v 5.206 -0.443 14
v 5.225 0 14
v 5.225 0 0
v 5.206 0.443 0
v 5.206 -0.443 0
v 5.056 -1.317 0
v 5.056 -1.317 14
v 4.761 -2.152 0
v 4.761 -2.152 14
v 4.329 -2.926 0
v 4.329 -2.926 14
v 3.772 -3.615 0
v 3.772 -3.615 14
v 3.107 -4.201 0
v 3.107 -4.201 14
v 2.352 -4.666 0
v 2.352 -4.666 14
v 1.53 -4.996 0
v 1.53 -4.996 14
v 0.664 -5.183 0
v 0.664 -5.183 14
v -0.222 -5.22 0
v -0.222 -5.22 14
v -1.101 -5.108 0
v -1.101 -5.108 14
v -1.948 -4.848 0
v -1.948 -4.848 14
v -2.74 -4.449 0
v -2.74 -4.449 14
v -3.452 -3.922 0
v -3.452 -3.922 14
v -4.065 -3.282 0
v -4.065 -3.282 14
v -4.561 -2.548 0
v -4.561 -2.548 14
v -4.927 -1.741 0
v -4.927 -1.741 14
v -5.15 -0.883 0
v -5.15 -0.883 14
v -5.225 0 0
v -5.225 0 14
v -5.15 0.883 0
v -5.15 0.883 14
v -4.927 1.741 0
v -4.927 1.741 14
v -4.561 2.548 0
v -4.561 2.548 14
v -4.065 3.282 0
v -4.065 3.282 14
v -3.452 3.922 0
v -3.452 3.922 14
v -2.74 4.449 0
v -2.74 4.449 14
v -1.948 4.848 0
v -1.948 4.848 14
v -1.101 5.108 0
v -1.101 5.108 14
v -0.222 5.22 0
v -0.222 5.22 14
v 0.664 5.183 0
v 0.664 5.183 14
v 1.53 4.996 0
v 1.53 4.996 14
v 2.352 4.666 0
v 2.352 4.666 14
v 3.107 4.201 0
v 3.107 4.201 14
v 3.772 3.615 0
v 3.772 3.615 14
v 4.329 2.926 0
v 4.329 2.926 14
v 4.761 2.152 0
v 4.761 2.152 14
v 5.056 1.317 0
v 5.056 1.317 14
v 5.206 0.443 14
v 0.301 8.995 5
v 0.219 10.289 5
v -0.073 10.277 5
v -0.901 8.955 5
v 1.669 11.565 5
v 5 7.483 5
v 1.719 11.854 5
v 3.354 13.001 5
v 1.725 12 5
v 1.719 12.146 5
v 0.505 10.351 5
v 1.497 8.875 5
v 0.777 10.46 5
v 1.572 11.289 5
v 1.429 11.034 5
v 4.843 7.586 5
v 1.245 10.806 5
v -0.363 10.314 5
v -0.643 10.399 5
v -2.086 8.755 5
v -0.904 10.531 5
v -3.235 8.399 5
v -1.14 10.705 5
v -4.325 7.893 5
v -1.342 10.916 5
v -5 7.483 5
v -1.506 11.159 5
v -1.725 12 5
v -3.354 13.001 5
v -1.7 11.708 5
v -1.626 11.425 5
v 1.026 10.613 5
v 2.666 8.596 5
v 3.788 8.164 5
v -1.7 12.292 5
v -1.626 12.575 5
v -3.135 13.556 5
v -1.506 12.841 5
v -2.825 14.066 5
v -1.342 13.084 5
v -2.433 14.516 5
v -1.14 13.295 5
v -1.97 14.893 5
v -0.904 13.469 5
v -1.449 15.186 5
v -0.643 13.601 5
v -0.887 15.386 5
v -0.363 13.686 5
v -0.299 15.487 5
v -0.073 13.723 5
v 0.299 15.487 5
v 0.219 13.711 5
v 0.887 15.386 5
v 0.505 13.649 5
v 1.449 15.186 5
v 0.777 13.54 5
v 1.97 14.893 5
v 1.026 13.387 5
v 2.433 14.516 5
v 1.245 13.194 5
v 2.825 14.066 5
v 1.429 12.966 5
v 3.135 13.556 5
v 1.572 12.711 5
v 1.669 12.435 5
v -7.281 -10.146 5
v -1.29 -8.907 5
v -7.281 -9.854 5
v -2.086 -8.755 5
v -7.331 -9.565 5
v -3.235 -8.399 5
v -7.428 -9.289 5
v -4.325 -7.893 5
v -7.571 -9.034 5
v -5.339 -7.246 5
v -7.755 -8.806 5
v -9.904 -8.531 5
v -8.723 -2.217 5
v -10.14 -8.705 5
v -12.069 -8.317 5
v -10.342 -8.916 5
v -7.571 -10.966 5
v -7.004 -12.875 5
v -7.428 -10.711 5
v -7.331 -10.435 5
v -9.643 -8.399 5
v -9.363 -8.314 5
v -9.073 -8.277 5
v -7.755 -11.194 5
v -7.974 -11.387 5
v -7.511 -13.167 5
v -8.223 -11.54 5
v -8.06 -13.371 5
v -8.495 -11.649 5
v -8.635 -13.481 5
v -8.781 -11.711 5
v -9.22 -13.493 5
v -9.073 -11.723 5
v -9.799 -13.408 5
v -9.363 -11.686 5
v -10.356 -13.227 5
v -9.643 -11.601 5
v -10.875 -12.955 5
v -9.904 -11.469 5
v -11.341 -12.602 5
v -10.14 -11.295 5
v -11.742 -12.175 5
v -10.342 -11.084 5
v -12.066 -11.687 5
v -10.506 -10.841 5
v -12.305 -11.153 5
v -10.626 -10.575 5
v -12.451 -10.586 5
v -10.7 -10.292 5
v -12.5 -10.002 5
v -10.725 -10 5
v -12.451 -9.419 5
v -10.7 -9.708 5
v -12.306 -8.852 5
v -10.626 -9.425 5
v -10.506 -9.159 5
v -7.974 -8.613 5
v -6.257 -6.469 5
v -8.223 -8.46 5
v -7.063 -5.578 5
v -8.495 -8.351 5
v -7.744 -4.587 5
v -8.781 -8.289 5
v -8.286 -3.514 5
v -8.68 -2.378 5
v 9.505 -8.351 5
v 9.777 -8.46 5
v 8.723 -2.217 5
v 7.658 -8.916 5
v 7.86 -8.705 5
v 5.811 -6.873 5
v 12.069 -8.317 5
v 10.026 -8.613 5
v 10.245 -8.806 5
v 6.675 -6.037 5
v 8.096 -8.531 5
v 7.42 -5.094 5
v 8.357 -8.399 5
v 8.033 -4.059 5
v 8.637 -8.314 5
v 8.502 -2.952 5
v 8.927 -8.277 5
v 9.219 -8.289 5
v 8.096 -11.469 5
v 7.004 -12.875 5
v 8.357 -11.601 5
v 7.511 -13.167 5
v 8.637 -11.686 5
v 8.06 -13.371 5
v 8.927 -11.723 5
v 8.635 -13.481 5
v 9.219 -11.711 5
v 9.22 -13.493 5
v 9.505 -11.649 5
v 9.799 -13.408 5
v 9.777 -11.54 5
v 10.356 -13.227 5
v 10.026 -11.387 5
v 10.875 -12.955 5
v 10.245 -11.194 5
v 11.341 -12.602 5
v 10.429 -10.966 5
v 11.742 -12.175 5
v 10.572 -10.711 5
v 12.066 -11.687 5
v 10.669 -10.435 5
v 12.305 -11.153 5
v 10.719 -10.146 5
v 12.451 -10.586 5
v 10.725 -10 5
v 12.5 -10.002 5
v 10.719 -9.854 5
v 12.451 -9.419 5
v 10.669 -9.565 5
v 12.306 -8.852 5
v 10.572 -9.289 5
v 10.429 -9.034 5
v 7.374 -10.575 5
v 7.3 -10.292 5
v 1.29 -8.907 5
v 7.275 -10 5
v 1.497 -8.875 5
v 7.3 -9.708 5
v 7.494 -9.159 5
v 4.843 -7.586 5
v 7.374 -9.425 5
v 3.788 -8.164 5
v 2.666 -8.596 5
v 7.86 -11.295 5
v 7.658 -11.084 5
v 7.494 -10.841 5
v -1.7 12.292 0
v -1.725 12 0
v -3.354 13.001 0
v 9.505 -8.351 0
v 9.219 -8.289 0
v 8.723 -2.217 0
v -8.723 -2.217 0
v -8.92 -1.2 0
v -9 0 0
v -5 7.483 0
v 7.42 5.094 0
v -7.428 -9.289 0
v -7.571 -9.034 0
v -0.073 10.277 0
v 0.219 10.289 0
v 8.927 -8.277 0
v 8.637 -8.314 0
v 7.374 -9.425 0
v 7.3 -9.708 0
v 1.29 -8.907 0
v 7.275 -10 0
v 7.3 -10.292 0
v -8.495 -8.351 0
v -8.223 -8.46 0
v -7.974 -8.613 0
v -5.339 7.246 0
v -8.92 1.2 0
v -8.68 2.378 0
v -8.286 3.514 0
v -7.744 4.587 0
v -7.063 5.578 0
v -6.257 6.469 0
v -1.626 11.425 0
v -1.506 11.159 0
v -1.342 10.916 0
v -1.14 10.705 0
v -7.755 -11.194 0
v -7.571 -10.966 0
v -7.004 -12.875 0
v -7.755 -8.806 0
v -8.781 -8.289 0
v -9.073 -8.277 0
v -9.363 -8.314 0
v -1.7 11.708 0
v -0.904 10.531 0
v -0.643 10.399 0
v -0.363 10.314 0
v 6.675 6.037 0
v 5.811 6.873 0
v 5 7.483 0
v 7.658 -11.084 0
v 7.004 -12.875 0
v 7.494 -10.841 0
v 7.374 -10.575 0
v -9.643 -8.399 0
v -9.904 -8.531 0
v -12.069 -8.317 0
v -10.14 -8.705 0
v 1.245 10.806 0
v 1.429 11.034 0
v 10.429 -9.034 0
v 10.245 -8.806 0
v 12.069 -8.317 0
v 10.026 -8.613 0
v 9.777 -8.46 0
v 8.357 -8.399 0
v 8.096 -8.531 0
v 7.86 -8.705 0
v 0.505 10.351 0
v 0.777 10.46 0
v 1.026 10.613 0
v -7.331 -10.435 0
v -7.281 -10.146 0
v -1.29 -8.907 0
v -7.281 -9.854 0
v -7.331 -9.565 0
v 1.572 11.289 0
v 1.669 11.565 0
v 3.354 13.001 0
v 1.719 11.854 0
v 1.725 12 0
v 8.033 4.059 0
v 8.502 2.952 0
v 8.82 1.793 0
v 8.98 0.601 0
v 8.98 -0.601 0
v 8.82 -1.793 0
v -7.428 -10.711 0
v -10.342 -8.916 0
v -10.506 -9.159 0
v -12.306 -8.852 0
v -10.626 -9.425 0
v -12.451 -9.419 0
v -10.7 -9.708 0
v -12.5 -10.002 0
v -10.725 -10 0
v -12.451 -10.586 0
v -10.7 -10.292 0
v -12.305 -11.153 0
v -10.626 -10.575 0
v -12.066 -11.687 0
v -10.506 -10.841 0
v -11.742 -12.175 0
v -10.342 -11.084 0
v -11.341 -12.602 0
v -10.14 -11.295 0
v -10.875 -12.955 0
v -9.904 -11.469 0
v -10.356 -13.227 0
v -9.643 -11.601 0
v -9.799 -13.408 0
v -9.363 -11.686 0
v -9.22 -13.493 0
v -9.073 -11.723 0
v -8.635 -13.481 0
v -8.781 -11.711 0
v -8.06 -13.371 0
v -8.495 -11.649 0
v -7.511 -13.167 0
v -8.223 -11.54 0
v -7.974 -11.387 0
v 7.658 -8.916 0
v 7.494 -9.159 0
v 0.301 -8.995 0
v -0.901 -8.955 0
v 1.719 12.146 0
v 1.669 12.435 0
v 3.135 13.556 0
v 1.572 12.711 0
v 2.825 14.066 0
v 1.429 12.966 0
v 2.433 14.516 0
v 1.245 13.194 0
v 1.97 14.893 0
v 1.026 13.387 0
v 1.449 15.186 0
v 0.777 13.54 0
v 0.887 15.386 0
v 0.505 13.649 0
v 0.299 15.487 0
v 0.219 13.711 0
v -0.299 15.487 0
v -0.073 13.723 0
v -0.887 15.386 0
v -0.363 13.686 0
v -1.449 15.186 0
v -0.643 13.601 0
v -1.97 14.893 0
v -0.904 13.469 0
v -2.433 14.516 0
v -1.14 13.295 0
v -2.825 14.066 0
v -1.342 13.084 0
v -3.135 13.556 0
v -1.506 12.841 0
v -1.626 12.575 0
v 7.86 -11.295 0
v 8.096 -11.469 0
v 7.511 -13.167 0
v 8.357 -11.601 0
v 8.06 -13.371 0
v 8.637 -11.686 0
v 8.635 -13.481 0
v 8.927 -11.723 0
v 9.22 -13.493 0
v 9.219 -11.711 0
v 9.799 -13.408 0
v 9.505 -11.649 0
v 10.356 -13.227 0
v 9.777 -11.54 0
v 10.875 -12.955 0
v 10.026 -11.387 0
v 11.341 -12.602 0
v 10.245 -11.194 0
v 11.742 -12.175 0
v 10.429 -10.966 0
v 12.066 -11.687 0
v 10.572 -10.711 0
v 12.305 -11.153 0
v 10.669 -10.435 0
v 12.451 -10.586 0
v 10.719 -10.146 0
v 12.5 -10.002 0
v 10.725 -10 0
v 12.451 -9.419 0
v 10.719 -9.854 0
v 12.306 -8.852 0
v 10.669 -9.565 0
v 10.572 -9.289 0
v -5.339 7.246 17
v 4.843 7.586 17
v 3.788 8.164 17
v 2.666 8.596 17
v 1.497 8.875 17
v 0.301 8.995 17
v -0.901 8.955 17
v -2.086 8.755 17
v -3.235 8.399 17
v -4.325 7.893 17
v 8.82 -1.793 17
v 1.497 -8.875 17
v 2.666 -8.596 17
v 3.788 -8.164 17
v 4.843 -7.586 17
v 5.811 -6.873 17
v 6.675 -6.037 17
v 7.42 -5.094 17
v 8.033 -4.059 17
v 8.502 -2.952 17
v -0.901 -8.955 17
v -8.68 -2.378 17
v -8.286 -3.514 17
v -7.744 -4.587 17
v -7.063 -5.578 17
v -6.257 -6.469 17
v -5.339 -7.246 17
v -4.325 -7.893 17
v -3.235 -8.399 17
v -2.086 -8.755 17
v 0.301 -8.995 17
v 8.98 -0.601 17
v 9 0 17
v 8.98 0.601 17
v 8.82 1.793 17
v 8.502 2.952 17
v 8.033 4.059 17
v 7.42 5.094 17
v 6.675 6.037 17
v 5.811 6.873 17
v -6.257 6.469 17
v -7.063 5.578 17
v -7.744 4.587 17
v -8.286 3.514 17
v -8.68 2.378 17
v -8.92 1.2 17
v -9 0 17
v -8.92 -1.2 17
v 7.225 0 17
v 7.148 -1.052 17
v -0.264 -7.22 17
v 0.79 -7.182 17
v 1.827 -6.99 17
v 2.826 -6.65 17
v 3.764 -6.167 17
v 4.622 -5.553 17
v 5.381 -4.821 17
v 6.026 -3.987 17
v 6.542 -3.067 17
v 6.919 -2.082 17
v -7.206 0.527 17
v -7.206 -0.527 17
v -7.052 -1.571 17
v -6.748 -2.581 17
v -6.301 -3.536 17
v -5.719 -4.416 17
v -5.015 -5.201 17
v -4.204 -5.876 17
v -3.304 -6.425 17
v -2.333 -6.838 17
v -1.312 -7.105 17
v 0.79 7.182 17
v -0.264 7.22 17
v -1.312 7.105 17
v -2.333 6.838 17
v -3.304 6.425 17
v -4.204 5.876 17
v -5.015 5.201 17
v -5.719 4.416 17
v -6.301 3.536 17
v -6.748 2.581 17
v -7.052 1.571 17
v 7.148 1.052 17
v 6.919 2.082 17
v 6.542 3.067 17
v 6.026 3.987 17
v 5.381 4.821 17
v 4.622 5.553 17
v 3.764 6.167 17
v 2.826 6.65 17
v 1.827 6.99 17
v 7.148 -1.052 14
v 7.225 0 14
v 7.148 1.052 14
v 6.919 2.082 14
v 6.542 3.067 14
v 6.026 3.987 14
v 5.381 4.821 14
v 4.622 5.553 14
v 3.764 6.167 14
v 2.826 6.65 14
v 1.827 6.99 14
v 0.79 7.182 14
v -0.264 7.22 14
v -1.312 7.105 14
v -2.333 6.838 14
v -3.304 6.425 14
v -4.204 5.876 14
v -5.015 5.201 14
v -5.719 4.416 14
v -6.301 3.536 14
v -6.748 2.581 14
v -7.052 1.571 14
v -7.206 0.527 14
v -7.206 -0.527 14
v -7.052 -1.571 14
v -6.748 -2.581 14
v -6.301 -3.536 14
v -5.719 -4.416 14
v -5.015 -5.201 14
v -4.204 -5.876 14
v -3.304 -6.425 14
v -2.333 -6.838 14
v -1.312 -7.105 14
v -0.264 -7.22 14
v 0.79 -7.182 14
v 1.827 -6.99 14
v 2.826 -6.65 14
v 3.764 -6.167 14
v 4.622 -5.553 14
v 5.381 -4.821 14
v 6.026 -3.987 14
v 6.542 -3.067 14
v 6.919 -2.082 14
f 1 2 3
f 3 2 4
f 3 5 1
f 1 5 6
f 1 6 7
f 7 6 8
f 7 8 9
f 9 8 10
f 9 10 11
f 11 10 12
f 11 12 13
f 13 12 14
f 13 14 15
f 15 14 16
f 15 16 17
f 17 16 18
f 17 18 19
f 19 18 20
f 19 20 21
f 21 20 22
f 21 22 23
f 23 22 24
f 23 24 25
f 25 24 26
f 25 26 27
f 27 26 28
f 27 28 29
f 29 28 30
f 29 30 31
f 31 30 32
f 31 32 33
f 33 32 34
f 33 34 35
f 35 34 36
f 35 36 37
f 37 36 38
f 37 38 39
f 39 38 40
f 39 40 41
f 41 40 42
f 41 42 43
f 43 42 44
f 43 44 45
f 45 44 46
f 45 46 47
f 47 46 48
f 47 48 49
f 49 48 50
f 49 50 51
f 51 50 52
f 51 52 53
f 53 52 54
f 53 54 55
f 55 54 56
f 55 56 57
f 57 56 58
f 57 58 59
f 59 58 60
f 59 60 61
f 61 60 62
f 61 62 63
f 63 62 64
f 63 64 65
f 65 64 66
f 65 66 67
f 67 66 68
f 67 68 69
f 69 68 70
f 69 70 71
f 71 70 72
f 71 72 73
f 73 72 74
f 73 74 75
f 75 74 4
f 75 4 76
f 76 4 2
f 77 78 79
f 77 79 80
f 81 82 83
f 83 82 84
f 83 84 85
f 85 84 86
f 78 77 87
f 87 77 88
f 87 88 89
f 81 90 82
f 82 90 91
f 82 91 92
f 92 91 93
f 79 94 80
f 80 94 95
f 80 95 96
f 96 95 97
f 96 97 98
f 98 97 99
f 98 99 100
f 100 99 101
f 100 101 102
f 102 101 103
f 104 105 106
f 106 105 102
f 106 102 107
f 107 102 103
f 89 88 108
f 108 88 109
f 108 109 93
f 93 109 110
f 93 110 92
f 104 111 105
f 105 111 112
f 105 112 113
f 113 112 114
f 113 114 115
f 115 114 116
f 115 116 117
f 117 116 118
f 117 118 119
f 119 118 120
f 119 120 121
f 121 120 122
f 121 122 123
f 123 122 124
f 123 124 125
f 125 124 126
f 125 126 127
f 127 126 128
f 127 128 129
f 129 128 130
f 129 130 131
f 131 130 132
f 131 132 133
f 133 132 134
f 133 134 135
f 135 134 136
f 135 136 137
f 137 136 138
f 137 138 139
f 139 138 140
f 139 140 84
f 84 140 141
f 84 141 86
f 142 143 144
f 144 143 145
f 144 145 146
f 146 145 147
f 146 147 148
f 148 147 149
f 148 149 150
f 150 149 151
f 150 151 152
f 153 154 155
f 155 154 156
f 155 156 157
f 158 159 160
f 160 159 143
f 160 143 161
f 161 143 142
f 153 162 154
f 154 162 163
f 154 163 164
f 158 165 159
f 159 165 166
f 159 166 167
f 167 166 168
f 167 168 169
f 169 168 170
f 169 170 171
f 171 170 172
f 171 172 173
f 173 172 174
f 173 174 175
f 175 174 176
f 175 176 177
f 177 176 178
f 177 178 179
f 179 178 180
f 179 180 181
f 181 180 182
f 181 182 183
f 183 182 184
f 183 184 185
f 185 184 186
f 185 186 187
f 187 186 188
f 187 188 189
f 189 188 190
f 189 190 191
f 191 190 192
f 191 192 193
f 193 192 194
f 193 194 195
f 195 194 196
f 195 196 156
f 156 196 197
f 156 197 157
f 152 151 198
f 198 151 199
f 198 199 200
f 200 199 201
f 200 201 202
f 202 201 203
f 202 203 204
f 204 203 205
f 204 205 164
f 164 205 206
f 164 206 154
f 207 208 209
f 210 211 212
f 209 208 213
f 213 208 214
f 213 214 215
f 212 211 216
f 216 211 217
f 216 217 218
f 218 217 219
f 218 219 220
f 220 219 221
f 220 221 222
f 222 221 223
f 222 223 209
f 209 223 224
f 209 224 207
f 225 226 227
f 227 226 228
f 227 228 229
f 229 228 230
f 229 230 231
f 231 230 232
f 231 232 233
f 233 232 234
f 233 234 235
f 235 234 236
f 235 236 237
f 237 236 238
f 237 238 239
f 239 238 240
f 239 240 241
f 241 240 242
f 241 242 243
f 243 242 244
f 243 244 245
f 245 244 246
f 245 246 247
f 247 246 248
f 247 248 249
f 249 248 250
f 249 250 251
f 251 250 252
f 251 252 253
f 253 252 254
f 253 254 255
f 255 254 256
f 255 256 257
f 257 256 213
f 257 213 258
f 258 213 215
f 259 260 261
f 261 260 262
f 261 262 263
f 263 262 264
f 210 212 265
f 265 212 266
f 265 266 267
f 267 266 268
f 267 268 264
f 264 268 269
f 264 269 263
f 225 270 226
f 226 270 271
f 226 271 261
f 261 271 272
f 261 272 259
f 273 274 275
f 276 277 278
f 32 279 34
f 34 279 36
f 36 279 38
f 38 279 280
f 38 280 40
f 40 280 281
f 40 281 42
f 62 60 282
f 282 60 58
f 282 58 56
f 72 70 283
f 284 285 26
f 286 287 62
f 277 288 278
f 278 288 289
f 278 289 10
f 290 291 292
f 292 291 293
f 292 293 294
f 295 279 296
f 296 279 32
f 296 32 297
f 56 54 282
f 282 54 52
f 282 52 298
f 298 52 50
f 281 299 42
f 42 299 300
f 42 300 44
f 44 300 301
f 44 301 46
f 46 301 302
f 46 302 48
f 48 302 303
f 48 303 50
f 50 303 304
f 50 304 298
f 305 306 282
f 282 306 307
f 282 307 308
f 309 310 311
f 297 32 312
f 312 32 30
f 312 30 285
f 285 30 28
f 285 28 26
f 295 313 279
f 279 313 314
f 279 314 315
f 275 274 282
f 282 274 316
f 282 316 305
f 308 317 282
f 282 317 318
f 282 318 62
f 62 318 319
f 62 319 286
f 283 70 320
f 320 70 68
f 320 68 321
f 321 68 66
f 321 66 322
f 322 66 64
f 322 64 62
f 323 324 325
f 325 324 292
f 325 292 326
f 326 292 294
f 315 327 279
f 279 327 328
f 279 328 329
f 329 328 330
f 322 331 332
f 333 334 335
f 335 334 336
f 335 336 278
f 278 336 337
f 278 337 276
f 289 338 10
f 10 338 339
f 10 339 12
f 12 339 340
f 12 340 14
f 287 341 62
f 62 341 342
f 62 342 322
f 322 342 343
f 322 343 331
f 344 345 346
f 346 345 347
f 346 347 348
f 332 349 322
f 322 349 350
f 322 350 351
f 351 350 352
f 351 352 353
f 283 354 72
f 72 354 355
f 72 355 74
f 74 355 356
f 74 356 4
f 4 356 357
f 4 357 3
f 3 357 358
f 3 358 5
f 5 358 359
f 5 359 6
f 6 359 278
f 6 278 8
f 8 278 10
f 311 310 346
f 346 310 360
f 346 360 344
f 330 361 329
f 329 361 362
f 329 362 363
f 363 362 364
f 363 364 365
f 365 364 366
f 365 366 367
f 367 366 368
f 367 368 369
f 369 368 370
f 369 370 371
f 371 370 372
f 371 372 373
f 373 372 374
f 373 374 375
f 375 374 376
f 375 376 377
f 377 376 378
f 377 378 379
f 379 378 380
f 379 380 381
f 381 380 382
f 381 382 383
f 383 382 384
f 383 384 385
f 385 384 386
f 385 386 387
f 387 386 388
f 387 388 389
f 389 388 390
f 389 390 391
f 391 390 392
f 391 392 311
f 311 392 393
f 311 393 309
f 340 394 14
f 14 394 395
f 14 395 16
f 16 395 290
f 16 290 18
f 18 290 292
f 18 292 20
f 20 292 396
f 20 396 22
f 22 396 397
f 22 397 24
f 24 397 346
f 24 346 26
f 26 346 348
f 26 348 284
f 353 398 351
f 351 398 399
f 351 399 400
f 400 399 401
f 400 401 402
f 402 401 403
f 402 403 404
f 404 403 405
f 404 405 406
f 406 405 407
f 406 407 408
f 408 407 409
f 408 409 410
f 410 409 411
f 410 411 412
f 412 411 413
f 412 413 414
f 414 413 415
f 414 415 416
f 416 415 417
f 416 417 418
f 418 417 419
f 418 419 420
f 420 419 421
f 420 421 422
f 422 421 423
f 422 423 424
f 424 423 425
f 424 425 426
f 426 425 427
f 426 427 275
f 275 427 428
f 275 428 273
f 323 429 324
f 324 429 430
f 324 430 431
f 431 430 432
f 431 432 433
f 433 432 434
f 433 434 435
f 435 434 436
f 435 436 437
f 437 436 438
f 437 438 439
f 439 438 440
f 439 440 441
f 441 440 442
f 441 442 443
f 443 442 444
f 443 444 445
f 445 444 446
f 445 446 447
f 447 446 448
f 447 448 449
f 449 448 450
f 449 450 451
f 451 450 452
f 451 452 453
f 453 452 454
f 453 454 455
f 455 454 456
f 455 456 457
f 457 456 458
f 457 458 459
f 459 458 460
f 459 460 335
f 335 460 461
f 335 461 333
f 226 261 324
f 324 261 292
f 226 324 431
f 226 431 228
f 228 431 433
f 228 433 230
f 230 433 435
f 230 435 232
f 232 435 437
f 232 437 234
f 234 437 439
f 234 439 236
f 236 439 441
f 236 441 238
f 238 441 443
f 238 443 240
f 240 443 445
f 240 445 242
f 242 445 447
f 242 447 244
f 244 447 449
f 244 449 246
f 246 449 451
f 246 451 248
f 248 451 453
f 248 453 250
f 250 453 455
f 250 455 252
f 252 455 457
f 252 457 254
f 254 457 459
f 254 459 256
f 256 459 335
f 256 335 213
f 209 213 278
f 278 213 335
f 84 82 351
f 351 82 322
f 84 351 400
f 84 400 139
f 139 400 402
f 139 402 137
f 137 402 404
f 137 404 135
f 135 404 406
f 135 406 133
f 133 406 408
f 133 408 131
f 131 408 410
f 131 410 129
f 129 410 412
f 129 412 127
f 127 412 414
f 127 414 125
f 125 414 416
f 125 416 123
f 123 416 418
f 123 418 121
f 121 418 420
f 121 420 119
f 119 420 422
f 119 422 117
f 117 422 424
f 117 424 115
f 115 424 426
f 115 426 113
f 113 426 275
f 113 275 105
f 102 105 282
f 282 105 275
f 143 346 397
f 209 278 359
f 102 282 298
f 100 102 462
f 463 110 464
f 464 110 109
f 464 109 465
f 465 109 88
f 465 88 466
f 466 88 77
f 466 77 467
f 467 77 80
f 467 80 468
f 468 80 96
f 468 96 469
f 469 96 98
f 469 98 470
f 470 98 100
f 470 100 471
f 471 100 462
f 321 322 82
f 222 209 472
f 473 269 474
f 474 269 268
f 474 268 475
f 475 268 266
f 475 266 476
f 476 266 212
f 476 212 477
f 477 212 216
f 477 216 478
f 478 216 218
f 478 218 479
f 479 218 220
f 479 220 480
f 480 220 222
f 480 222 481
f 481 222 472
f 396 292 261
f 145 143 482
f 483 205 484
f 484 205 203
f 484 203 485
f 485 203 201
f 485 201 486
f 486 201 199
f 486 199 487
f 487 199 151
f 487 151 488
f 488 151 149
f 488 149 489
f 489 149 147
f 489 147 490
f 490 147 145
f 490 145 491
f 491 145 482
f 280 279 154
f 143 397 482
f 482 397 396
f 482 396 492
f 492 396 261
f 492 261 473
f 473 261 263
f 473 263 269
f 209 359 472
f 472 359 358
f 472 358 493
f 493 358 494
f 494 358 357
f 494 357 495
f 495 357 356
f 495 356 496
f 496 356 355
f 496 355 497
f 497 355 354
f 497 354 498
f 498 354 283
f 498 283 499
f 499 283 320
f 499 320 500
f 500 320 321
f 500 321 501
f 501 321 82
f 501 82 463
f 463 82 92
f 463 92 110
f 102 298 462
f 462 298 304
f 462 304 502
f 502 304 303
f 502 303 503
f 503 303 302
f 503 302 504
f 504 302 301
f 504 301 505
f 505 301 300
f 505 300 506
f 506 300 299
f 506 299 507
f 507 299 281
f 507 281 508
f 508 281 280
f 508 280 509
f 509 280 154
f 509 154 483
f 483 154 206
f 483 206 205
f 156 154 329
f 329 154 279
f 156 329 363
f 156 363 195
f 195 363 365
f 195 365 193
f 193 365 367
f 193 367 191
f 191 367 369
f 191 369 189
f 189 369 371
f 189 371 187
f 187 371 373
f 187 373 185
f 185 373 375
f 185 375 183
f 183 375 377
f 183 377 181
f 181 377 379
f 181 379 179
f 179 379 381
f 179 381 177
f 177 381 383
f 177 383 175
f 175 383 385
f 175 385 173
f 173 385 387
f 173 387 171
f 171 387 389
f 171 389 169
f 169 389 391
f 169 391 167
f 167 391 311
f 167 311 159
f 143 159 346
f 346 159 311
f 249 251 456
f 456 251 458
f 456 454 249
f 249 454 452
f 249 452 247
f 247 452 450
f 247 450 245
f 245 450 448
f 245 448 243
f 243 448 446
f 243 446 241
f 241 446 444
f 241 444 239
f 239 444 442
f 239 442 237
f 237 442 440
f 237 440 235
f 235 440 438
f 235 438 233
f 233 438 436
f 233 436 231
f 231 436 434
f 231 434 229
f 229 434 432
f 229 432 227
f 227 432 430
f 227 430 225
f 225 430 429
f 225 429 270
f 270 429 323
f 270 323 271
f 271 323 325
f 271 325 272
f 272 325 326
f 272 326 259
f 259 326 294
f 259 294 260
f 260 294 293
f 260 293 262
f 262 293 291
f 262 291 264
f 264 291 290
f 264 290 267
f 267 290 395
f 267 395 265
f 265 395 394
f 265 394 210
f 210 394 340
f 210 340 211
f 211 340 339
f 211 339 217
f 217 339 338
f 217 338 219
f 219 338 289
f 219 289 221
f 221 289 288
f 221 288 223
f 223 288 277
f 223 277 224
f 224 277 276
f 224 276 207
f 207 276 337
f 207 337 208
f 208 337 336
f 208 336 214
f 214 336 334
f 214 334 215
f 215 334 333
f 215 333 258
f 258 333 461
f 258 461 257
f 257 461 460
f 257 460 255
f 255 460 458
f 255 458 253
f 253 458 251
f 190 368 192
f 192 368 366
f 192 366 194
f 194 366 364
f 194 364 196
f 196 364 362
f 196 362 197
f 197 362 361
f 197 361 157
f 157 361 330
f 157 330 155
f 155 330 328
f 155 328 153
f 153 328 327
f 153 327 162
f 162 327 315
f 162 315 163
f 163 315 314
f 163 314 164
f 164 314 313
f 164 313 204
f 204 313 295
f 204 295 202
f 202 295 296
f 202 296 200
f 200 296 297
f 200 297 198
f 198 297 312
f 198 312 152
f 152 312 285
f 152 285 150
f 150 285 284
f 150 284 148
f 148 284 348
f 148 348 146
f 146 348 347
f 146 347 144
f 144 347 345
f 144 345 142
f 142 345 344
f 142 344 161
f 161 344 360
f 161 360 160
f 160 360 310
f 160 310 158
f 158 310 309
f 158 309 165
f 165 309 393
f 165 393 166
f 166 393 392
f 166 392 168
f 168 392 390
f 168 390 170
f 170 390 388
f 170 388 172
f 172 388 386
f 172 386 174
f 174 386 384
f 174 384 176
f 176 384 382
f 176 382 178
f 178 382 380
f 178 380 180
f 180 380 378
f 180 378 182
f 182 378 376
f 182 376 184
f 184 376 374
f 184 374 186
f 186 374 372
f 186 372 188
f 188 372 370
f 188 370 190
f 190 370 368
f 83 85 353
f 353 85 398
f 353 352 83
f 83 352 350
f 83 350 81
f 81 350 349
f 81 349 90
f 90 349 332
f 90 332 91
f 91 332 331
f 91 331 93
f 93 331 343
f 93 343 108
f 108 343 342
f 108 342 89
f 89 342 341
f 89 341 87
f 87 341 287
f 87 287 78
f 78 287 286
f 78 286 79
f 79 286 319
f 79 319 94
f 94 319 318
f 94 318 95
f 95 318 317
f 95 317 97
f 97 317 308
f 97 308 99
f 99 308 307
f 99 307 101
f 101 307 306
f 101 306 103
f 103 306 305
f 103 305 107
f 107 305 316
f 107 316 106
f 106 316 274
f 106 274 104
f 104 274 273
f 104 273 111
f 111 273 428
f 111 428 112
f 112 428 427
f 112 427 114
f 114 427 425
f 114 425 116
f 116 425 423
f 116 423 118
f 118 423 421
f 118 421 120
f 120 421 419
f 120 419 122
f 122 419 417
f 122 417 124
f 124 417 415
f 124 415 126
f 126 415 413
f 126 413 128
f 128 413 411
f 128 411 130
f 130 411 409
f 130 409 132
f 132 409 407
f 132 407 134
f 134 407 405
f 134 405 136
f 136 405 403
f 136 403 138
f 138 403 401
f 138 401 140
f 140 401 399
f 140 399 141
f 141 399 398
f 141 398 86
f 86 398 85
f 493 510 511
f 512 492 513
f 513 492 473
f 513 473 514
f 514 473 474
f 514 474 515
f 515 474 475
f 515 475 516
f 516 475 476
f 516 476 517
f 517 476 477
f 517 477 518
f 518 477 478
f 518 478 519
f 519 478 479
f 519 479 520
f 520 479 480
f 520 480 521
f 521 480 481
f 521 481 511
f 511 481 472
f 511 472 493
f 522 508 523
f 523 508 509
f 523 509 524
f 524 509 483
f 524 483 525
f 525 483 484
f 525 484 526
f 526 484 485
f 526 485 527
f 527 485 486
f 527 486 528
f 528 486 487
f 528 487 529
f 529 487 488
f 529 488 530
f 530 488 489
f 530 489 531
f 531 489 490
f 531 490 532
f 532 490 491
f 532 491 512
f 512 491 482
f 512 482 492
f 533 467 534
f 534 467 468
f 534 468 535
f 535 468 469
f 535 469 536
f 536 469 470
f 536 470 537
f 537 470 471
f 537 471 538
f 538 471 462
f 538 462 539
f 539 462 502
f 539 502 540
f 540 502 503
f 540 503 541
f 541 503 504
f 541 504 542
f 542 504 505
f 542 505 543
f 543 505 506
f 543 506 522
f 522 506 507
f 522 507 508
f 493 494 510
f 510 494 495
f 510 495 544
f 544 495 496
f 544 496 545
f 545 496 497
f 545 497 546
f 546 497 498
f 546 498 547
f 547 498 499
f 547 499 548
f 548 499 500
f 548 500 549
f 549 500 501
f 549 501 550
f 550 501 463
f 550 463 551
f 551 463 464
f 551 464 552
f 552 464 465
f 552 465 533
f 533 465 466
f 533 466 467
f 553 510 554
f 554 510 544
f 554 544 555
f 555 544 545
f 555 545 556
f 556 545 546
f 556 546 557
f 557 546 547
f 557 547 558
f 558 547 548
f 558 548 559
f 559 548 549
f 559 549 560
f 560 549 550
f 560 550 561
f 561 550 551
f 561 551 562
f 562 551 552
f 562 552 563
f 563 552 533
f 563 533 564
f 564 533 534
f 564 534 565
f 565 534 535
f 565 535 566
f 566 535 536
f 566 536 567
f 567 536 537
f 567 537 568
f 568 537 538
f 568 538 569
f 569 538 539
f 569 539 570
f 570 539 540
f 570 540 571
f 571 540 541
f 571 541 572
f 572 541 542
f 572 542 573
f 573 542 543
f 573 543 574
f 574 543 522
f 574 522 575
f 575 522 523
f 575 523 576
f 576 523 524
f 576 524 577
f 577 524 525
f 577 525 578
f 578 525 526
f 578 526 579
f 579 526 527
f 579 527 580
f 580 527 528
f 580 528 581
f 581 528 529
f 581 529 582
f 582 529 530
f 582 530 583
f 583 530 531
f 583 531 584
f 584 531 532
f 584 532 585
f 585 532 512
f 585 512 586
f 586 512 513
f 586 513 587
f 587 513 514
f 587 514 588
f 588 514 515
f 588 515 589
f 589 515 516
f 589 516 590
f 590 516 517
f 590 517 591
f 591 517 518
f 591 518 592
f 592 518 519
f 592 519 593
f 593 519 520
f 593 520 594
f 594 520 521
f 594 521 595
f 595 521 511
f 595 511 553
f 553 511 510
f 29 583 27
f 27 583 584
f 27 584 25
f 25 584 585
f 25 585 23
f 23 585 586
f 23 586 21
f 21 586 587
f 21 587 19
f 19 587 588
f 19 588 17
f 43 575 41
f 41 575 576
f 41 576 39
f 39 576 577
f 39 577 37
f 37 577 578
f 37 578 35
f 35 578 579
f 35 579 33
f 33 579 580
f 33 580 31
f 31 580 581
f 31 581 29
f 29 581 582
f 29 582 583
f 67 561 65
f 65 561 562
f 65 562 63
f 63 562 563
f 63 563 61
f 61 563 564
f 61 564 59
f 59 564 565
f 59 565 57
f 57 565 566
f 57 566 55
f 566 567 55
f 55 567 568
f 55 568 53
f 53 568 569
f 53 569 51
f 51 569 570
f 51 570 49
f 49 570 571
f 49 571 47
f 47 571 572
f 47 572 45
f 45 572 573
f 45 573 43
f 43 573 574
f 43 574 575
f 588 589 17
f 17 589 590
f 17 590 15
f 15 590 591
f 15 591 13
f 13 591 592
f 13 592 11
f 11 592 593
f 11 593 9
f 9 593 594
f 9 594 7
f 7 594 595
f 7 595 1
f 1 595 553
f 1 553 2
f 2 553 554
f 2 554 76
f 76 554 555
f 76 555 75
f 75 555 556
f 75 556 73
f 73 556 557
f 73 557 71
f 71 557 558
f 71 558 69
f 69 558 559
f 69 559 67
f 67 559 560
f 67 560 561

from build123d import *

# Parameters (mm, degrees)
SKETCH1_R           = 5.225
SKETCH1_R_2         = 1.725
BOSS_EXTRUDE1_DEPTH = 5
SKETCH2_R           = 9
SKETCH2_R_2         = 5.225
BOSS_EXTRUDE2_DEPTH = 12
CUT_EXTRUDE1_START  = -3
SKETCH3_R           = 7.225
SKETCH3_R_2         = 5.225
CUT_EXTRUDE1_DEPTH  = 3


with BuildPart() as part:
    # Sketch1 → Boss-Extrude1 (new body)
    with BuildSketch(Plane.XY):
        with BuildLine():
            Line((8.72254439, -2.217480408), (12.068556171, -8.316562141))
            ThreePointArc((12.068556171, -8.316562141), (11.341376561, -12.601529512), (7.003749271, -12.87488835))
            Line((7.003749271, -12.87488835), (1.289602928, -8.907127724))
            ThreePointArc((1.289602928, -8.907127724), (0, -9), (-1.289602928, -8.907127724))
            Line((-1.289602928, -8.907127724), (-7.003749271, -12.87488835))
            ThreePointArc((-7.003749271, -12.87488835), (-11.341376561, -12.601529512), (-12.068556171, -8.316562141))
            Line((-12.068556171, -8.316562141), (-8.72254439, -2.217480408))
            ThreePointArc((-8.72254439, -2.217480408), (-8.402583705, 3.224373905), (-5, 7.483314774))
            Line((-5, 7.483314774), (-3.353912105, 13.000636594))
            ThreePointArc((-3.353912105, 13.000636594), (0, 15.5), (3.353912105, 13.000636594))
            Line((3.353912105, 13.000636594), (5, 7.483314774))
            ThreePointArc((5, 7.483314774), (8.402583705, 3.224373905), (8.72254439, -2.217480408))
        make_face()
        Circle(SKETCH1_R, mode=Mode.SUBTRACT)
        with Locations((9, -10)):
            Circle(SKETCH1_R_2, mode=Mode.SUBTRACT)
        with Locations((-9, -10)):
            Circle(SKETCH1_R_2, mode=Mode.SUBTRACT)
        with Locations((0, 12)):
            Circle(SKETCH1_R_2, mode=Mode.SUBTRACT)
    extrude(amount=BOSS_EXTRUDE1_DEPTH)

    # Sketch2 → Boss-Extrude2 (add)
    with BuildSketch(Plane.XY.offset(5)):
        Circle(SKETCH2_R)
        Circle(SKETCH2_R_2, mode=Mode.SUBTRACT)
    extrude(amount=BOSS_EXTRUDE2_DEPTH)

    # Sketch3 → Cut-Extrude1 (cut)
    with BuildSketch(Plane.XY.offset(17).offset(CUT_EXTRUDE1_START)):
        Circle(SKETCH3_R)
        Circle(SKETCH3_R_2, mode=Mode.SUBTRACT)
    extrude(amount=CUT_EXTRUDE1_DEPTH, mode=Mode.SUBTRACT)


solid = part.part
